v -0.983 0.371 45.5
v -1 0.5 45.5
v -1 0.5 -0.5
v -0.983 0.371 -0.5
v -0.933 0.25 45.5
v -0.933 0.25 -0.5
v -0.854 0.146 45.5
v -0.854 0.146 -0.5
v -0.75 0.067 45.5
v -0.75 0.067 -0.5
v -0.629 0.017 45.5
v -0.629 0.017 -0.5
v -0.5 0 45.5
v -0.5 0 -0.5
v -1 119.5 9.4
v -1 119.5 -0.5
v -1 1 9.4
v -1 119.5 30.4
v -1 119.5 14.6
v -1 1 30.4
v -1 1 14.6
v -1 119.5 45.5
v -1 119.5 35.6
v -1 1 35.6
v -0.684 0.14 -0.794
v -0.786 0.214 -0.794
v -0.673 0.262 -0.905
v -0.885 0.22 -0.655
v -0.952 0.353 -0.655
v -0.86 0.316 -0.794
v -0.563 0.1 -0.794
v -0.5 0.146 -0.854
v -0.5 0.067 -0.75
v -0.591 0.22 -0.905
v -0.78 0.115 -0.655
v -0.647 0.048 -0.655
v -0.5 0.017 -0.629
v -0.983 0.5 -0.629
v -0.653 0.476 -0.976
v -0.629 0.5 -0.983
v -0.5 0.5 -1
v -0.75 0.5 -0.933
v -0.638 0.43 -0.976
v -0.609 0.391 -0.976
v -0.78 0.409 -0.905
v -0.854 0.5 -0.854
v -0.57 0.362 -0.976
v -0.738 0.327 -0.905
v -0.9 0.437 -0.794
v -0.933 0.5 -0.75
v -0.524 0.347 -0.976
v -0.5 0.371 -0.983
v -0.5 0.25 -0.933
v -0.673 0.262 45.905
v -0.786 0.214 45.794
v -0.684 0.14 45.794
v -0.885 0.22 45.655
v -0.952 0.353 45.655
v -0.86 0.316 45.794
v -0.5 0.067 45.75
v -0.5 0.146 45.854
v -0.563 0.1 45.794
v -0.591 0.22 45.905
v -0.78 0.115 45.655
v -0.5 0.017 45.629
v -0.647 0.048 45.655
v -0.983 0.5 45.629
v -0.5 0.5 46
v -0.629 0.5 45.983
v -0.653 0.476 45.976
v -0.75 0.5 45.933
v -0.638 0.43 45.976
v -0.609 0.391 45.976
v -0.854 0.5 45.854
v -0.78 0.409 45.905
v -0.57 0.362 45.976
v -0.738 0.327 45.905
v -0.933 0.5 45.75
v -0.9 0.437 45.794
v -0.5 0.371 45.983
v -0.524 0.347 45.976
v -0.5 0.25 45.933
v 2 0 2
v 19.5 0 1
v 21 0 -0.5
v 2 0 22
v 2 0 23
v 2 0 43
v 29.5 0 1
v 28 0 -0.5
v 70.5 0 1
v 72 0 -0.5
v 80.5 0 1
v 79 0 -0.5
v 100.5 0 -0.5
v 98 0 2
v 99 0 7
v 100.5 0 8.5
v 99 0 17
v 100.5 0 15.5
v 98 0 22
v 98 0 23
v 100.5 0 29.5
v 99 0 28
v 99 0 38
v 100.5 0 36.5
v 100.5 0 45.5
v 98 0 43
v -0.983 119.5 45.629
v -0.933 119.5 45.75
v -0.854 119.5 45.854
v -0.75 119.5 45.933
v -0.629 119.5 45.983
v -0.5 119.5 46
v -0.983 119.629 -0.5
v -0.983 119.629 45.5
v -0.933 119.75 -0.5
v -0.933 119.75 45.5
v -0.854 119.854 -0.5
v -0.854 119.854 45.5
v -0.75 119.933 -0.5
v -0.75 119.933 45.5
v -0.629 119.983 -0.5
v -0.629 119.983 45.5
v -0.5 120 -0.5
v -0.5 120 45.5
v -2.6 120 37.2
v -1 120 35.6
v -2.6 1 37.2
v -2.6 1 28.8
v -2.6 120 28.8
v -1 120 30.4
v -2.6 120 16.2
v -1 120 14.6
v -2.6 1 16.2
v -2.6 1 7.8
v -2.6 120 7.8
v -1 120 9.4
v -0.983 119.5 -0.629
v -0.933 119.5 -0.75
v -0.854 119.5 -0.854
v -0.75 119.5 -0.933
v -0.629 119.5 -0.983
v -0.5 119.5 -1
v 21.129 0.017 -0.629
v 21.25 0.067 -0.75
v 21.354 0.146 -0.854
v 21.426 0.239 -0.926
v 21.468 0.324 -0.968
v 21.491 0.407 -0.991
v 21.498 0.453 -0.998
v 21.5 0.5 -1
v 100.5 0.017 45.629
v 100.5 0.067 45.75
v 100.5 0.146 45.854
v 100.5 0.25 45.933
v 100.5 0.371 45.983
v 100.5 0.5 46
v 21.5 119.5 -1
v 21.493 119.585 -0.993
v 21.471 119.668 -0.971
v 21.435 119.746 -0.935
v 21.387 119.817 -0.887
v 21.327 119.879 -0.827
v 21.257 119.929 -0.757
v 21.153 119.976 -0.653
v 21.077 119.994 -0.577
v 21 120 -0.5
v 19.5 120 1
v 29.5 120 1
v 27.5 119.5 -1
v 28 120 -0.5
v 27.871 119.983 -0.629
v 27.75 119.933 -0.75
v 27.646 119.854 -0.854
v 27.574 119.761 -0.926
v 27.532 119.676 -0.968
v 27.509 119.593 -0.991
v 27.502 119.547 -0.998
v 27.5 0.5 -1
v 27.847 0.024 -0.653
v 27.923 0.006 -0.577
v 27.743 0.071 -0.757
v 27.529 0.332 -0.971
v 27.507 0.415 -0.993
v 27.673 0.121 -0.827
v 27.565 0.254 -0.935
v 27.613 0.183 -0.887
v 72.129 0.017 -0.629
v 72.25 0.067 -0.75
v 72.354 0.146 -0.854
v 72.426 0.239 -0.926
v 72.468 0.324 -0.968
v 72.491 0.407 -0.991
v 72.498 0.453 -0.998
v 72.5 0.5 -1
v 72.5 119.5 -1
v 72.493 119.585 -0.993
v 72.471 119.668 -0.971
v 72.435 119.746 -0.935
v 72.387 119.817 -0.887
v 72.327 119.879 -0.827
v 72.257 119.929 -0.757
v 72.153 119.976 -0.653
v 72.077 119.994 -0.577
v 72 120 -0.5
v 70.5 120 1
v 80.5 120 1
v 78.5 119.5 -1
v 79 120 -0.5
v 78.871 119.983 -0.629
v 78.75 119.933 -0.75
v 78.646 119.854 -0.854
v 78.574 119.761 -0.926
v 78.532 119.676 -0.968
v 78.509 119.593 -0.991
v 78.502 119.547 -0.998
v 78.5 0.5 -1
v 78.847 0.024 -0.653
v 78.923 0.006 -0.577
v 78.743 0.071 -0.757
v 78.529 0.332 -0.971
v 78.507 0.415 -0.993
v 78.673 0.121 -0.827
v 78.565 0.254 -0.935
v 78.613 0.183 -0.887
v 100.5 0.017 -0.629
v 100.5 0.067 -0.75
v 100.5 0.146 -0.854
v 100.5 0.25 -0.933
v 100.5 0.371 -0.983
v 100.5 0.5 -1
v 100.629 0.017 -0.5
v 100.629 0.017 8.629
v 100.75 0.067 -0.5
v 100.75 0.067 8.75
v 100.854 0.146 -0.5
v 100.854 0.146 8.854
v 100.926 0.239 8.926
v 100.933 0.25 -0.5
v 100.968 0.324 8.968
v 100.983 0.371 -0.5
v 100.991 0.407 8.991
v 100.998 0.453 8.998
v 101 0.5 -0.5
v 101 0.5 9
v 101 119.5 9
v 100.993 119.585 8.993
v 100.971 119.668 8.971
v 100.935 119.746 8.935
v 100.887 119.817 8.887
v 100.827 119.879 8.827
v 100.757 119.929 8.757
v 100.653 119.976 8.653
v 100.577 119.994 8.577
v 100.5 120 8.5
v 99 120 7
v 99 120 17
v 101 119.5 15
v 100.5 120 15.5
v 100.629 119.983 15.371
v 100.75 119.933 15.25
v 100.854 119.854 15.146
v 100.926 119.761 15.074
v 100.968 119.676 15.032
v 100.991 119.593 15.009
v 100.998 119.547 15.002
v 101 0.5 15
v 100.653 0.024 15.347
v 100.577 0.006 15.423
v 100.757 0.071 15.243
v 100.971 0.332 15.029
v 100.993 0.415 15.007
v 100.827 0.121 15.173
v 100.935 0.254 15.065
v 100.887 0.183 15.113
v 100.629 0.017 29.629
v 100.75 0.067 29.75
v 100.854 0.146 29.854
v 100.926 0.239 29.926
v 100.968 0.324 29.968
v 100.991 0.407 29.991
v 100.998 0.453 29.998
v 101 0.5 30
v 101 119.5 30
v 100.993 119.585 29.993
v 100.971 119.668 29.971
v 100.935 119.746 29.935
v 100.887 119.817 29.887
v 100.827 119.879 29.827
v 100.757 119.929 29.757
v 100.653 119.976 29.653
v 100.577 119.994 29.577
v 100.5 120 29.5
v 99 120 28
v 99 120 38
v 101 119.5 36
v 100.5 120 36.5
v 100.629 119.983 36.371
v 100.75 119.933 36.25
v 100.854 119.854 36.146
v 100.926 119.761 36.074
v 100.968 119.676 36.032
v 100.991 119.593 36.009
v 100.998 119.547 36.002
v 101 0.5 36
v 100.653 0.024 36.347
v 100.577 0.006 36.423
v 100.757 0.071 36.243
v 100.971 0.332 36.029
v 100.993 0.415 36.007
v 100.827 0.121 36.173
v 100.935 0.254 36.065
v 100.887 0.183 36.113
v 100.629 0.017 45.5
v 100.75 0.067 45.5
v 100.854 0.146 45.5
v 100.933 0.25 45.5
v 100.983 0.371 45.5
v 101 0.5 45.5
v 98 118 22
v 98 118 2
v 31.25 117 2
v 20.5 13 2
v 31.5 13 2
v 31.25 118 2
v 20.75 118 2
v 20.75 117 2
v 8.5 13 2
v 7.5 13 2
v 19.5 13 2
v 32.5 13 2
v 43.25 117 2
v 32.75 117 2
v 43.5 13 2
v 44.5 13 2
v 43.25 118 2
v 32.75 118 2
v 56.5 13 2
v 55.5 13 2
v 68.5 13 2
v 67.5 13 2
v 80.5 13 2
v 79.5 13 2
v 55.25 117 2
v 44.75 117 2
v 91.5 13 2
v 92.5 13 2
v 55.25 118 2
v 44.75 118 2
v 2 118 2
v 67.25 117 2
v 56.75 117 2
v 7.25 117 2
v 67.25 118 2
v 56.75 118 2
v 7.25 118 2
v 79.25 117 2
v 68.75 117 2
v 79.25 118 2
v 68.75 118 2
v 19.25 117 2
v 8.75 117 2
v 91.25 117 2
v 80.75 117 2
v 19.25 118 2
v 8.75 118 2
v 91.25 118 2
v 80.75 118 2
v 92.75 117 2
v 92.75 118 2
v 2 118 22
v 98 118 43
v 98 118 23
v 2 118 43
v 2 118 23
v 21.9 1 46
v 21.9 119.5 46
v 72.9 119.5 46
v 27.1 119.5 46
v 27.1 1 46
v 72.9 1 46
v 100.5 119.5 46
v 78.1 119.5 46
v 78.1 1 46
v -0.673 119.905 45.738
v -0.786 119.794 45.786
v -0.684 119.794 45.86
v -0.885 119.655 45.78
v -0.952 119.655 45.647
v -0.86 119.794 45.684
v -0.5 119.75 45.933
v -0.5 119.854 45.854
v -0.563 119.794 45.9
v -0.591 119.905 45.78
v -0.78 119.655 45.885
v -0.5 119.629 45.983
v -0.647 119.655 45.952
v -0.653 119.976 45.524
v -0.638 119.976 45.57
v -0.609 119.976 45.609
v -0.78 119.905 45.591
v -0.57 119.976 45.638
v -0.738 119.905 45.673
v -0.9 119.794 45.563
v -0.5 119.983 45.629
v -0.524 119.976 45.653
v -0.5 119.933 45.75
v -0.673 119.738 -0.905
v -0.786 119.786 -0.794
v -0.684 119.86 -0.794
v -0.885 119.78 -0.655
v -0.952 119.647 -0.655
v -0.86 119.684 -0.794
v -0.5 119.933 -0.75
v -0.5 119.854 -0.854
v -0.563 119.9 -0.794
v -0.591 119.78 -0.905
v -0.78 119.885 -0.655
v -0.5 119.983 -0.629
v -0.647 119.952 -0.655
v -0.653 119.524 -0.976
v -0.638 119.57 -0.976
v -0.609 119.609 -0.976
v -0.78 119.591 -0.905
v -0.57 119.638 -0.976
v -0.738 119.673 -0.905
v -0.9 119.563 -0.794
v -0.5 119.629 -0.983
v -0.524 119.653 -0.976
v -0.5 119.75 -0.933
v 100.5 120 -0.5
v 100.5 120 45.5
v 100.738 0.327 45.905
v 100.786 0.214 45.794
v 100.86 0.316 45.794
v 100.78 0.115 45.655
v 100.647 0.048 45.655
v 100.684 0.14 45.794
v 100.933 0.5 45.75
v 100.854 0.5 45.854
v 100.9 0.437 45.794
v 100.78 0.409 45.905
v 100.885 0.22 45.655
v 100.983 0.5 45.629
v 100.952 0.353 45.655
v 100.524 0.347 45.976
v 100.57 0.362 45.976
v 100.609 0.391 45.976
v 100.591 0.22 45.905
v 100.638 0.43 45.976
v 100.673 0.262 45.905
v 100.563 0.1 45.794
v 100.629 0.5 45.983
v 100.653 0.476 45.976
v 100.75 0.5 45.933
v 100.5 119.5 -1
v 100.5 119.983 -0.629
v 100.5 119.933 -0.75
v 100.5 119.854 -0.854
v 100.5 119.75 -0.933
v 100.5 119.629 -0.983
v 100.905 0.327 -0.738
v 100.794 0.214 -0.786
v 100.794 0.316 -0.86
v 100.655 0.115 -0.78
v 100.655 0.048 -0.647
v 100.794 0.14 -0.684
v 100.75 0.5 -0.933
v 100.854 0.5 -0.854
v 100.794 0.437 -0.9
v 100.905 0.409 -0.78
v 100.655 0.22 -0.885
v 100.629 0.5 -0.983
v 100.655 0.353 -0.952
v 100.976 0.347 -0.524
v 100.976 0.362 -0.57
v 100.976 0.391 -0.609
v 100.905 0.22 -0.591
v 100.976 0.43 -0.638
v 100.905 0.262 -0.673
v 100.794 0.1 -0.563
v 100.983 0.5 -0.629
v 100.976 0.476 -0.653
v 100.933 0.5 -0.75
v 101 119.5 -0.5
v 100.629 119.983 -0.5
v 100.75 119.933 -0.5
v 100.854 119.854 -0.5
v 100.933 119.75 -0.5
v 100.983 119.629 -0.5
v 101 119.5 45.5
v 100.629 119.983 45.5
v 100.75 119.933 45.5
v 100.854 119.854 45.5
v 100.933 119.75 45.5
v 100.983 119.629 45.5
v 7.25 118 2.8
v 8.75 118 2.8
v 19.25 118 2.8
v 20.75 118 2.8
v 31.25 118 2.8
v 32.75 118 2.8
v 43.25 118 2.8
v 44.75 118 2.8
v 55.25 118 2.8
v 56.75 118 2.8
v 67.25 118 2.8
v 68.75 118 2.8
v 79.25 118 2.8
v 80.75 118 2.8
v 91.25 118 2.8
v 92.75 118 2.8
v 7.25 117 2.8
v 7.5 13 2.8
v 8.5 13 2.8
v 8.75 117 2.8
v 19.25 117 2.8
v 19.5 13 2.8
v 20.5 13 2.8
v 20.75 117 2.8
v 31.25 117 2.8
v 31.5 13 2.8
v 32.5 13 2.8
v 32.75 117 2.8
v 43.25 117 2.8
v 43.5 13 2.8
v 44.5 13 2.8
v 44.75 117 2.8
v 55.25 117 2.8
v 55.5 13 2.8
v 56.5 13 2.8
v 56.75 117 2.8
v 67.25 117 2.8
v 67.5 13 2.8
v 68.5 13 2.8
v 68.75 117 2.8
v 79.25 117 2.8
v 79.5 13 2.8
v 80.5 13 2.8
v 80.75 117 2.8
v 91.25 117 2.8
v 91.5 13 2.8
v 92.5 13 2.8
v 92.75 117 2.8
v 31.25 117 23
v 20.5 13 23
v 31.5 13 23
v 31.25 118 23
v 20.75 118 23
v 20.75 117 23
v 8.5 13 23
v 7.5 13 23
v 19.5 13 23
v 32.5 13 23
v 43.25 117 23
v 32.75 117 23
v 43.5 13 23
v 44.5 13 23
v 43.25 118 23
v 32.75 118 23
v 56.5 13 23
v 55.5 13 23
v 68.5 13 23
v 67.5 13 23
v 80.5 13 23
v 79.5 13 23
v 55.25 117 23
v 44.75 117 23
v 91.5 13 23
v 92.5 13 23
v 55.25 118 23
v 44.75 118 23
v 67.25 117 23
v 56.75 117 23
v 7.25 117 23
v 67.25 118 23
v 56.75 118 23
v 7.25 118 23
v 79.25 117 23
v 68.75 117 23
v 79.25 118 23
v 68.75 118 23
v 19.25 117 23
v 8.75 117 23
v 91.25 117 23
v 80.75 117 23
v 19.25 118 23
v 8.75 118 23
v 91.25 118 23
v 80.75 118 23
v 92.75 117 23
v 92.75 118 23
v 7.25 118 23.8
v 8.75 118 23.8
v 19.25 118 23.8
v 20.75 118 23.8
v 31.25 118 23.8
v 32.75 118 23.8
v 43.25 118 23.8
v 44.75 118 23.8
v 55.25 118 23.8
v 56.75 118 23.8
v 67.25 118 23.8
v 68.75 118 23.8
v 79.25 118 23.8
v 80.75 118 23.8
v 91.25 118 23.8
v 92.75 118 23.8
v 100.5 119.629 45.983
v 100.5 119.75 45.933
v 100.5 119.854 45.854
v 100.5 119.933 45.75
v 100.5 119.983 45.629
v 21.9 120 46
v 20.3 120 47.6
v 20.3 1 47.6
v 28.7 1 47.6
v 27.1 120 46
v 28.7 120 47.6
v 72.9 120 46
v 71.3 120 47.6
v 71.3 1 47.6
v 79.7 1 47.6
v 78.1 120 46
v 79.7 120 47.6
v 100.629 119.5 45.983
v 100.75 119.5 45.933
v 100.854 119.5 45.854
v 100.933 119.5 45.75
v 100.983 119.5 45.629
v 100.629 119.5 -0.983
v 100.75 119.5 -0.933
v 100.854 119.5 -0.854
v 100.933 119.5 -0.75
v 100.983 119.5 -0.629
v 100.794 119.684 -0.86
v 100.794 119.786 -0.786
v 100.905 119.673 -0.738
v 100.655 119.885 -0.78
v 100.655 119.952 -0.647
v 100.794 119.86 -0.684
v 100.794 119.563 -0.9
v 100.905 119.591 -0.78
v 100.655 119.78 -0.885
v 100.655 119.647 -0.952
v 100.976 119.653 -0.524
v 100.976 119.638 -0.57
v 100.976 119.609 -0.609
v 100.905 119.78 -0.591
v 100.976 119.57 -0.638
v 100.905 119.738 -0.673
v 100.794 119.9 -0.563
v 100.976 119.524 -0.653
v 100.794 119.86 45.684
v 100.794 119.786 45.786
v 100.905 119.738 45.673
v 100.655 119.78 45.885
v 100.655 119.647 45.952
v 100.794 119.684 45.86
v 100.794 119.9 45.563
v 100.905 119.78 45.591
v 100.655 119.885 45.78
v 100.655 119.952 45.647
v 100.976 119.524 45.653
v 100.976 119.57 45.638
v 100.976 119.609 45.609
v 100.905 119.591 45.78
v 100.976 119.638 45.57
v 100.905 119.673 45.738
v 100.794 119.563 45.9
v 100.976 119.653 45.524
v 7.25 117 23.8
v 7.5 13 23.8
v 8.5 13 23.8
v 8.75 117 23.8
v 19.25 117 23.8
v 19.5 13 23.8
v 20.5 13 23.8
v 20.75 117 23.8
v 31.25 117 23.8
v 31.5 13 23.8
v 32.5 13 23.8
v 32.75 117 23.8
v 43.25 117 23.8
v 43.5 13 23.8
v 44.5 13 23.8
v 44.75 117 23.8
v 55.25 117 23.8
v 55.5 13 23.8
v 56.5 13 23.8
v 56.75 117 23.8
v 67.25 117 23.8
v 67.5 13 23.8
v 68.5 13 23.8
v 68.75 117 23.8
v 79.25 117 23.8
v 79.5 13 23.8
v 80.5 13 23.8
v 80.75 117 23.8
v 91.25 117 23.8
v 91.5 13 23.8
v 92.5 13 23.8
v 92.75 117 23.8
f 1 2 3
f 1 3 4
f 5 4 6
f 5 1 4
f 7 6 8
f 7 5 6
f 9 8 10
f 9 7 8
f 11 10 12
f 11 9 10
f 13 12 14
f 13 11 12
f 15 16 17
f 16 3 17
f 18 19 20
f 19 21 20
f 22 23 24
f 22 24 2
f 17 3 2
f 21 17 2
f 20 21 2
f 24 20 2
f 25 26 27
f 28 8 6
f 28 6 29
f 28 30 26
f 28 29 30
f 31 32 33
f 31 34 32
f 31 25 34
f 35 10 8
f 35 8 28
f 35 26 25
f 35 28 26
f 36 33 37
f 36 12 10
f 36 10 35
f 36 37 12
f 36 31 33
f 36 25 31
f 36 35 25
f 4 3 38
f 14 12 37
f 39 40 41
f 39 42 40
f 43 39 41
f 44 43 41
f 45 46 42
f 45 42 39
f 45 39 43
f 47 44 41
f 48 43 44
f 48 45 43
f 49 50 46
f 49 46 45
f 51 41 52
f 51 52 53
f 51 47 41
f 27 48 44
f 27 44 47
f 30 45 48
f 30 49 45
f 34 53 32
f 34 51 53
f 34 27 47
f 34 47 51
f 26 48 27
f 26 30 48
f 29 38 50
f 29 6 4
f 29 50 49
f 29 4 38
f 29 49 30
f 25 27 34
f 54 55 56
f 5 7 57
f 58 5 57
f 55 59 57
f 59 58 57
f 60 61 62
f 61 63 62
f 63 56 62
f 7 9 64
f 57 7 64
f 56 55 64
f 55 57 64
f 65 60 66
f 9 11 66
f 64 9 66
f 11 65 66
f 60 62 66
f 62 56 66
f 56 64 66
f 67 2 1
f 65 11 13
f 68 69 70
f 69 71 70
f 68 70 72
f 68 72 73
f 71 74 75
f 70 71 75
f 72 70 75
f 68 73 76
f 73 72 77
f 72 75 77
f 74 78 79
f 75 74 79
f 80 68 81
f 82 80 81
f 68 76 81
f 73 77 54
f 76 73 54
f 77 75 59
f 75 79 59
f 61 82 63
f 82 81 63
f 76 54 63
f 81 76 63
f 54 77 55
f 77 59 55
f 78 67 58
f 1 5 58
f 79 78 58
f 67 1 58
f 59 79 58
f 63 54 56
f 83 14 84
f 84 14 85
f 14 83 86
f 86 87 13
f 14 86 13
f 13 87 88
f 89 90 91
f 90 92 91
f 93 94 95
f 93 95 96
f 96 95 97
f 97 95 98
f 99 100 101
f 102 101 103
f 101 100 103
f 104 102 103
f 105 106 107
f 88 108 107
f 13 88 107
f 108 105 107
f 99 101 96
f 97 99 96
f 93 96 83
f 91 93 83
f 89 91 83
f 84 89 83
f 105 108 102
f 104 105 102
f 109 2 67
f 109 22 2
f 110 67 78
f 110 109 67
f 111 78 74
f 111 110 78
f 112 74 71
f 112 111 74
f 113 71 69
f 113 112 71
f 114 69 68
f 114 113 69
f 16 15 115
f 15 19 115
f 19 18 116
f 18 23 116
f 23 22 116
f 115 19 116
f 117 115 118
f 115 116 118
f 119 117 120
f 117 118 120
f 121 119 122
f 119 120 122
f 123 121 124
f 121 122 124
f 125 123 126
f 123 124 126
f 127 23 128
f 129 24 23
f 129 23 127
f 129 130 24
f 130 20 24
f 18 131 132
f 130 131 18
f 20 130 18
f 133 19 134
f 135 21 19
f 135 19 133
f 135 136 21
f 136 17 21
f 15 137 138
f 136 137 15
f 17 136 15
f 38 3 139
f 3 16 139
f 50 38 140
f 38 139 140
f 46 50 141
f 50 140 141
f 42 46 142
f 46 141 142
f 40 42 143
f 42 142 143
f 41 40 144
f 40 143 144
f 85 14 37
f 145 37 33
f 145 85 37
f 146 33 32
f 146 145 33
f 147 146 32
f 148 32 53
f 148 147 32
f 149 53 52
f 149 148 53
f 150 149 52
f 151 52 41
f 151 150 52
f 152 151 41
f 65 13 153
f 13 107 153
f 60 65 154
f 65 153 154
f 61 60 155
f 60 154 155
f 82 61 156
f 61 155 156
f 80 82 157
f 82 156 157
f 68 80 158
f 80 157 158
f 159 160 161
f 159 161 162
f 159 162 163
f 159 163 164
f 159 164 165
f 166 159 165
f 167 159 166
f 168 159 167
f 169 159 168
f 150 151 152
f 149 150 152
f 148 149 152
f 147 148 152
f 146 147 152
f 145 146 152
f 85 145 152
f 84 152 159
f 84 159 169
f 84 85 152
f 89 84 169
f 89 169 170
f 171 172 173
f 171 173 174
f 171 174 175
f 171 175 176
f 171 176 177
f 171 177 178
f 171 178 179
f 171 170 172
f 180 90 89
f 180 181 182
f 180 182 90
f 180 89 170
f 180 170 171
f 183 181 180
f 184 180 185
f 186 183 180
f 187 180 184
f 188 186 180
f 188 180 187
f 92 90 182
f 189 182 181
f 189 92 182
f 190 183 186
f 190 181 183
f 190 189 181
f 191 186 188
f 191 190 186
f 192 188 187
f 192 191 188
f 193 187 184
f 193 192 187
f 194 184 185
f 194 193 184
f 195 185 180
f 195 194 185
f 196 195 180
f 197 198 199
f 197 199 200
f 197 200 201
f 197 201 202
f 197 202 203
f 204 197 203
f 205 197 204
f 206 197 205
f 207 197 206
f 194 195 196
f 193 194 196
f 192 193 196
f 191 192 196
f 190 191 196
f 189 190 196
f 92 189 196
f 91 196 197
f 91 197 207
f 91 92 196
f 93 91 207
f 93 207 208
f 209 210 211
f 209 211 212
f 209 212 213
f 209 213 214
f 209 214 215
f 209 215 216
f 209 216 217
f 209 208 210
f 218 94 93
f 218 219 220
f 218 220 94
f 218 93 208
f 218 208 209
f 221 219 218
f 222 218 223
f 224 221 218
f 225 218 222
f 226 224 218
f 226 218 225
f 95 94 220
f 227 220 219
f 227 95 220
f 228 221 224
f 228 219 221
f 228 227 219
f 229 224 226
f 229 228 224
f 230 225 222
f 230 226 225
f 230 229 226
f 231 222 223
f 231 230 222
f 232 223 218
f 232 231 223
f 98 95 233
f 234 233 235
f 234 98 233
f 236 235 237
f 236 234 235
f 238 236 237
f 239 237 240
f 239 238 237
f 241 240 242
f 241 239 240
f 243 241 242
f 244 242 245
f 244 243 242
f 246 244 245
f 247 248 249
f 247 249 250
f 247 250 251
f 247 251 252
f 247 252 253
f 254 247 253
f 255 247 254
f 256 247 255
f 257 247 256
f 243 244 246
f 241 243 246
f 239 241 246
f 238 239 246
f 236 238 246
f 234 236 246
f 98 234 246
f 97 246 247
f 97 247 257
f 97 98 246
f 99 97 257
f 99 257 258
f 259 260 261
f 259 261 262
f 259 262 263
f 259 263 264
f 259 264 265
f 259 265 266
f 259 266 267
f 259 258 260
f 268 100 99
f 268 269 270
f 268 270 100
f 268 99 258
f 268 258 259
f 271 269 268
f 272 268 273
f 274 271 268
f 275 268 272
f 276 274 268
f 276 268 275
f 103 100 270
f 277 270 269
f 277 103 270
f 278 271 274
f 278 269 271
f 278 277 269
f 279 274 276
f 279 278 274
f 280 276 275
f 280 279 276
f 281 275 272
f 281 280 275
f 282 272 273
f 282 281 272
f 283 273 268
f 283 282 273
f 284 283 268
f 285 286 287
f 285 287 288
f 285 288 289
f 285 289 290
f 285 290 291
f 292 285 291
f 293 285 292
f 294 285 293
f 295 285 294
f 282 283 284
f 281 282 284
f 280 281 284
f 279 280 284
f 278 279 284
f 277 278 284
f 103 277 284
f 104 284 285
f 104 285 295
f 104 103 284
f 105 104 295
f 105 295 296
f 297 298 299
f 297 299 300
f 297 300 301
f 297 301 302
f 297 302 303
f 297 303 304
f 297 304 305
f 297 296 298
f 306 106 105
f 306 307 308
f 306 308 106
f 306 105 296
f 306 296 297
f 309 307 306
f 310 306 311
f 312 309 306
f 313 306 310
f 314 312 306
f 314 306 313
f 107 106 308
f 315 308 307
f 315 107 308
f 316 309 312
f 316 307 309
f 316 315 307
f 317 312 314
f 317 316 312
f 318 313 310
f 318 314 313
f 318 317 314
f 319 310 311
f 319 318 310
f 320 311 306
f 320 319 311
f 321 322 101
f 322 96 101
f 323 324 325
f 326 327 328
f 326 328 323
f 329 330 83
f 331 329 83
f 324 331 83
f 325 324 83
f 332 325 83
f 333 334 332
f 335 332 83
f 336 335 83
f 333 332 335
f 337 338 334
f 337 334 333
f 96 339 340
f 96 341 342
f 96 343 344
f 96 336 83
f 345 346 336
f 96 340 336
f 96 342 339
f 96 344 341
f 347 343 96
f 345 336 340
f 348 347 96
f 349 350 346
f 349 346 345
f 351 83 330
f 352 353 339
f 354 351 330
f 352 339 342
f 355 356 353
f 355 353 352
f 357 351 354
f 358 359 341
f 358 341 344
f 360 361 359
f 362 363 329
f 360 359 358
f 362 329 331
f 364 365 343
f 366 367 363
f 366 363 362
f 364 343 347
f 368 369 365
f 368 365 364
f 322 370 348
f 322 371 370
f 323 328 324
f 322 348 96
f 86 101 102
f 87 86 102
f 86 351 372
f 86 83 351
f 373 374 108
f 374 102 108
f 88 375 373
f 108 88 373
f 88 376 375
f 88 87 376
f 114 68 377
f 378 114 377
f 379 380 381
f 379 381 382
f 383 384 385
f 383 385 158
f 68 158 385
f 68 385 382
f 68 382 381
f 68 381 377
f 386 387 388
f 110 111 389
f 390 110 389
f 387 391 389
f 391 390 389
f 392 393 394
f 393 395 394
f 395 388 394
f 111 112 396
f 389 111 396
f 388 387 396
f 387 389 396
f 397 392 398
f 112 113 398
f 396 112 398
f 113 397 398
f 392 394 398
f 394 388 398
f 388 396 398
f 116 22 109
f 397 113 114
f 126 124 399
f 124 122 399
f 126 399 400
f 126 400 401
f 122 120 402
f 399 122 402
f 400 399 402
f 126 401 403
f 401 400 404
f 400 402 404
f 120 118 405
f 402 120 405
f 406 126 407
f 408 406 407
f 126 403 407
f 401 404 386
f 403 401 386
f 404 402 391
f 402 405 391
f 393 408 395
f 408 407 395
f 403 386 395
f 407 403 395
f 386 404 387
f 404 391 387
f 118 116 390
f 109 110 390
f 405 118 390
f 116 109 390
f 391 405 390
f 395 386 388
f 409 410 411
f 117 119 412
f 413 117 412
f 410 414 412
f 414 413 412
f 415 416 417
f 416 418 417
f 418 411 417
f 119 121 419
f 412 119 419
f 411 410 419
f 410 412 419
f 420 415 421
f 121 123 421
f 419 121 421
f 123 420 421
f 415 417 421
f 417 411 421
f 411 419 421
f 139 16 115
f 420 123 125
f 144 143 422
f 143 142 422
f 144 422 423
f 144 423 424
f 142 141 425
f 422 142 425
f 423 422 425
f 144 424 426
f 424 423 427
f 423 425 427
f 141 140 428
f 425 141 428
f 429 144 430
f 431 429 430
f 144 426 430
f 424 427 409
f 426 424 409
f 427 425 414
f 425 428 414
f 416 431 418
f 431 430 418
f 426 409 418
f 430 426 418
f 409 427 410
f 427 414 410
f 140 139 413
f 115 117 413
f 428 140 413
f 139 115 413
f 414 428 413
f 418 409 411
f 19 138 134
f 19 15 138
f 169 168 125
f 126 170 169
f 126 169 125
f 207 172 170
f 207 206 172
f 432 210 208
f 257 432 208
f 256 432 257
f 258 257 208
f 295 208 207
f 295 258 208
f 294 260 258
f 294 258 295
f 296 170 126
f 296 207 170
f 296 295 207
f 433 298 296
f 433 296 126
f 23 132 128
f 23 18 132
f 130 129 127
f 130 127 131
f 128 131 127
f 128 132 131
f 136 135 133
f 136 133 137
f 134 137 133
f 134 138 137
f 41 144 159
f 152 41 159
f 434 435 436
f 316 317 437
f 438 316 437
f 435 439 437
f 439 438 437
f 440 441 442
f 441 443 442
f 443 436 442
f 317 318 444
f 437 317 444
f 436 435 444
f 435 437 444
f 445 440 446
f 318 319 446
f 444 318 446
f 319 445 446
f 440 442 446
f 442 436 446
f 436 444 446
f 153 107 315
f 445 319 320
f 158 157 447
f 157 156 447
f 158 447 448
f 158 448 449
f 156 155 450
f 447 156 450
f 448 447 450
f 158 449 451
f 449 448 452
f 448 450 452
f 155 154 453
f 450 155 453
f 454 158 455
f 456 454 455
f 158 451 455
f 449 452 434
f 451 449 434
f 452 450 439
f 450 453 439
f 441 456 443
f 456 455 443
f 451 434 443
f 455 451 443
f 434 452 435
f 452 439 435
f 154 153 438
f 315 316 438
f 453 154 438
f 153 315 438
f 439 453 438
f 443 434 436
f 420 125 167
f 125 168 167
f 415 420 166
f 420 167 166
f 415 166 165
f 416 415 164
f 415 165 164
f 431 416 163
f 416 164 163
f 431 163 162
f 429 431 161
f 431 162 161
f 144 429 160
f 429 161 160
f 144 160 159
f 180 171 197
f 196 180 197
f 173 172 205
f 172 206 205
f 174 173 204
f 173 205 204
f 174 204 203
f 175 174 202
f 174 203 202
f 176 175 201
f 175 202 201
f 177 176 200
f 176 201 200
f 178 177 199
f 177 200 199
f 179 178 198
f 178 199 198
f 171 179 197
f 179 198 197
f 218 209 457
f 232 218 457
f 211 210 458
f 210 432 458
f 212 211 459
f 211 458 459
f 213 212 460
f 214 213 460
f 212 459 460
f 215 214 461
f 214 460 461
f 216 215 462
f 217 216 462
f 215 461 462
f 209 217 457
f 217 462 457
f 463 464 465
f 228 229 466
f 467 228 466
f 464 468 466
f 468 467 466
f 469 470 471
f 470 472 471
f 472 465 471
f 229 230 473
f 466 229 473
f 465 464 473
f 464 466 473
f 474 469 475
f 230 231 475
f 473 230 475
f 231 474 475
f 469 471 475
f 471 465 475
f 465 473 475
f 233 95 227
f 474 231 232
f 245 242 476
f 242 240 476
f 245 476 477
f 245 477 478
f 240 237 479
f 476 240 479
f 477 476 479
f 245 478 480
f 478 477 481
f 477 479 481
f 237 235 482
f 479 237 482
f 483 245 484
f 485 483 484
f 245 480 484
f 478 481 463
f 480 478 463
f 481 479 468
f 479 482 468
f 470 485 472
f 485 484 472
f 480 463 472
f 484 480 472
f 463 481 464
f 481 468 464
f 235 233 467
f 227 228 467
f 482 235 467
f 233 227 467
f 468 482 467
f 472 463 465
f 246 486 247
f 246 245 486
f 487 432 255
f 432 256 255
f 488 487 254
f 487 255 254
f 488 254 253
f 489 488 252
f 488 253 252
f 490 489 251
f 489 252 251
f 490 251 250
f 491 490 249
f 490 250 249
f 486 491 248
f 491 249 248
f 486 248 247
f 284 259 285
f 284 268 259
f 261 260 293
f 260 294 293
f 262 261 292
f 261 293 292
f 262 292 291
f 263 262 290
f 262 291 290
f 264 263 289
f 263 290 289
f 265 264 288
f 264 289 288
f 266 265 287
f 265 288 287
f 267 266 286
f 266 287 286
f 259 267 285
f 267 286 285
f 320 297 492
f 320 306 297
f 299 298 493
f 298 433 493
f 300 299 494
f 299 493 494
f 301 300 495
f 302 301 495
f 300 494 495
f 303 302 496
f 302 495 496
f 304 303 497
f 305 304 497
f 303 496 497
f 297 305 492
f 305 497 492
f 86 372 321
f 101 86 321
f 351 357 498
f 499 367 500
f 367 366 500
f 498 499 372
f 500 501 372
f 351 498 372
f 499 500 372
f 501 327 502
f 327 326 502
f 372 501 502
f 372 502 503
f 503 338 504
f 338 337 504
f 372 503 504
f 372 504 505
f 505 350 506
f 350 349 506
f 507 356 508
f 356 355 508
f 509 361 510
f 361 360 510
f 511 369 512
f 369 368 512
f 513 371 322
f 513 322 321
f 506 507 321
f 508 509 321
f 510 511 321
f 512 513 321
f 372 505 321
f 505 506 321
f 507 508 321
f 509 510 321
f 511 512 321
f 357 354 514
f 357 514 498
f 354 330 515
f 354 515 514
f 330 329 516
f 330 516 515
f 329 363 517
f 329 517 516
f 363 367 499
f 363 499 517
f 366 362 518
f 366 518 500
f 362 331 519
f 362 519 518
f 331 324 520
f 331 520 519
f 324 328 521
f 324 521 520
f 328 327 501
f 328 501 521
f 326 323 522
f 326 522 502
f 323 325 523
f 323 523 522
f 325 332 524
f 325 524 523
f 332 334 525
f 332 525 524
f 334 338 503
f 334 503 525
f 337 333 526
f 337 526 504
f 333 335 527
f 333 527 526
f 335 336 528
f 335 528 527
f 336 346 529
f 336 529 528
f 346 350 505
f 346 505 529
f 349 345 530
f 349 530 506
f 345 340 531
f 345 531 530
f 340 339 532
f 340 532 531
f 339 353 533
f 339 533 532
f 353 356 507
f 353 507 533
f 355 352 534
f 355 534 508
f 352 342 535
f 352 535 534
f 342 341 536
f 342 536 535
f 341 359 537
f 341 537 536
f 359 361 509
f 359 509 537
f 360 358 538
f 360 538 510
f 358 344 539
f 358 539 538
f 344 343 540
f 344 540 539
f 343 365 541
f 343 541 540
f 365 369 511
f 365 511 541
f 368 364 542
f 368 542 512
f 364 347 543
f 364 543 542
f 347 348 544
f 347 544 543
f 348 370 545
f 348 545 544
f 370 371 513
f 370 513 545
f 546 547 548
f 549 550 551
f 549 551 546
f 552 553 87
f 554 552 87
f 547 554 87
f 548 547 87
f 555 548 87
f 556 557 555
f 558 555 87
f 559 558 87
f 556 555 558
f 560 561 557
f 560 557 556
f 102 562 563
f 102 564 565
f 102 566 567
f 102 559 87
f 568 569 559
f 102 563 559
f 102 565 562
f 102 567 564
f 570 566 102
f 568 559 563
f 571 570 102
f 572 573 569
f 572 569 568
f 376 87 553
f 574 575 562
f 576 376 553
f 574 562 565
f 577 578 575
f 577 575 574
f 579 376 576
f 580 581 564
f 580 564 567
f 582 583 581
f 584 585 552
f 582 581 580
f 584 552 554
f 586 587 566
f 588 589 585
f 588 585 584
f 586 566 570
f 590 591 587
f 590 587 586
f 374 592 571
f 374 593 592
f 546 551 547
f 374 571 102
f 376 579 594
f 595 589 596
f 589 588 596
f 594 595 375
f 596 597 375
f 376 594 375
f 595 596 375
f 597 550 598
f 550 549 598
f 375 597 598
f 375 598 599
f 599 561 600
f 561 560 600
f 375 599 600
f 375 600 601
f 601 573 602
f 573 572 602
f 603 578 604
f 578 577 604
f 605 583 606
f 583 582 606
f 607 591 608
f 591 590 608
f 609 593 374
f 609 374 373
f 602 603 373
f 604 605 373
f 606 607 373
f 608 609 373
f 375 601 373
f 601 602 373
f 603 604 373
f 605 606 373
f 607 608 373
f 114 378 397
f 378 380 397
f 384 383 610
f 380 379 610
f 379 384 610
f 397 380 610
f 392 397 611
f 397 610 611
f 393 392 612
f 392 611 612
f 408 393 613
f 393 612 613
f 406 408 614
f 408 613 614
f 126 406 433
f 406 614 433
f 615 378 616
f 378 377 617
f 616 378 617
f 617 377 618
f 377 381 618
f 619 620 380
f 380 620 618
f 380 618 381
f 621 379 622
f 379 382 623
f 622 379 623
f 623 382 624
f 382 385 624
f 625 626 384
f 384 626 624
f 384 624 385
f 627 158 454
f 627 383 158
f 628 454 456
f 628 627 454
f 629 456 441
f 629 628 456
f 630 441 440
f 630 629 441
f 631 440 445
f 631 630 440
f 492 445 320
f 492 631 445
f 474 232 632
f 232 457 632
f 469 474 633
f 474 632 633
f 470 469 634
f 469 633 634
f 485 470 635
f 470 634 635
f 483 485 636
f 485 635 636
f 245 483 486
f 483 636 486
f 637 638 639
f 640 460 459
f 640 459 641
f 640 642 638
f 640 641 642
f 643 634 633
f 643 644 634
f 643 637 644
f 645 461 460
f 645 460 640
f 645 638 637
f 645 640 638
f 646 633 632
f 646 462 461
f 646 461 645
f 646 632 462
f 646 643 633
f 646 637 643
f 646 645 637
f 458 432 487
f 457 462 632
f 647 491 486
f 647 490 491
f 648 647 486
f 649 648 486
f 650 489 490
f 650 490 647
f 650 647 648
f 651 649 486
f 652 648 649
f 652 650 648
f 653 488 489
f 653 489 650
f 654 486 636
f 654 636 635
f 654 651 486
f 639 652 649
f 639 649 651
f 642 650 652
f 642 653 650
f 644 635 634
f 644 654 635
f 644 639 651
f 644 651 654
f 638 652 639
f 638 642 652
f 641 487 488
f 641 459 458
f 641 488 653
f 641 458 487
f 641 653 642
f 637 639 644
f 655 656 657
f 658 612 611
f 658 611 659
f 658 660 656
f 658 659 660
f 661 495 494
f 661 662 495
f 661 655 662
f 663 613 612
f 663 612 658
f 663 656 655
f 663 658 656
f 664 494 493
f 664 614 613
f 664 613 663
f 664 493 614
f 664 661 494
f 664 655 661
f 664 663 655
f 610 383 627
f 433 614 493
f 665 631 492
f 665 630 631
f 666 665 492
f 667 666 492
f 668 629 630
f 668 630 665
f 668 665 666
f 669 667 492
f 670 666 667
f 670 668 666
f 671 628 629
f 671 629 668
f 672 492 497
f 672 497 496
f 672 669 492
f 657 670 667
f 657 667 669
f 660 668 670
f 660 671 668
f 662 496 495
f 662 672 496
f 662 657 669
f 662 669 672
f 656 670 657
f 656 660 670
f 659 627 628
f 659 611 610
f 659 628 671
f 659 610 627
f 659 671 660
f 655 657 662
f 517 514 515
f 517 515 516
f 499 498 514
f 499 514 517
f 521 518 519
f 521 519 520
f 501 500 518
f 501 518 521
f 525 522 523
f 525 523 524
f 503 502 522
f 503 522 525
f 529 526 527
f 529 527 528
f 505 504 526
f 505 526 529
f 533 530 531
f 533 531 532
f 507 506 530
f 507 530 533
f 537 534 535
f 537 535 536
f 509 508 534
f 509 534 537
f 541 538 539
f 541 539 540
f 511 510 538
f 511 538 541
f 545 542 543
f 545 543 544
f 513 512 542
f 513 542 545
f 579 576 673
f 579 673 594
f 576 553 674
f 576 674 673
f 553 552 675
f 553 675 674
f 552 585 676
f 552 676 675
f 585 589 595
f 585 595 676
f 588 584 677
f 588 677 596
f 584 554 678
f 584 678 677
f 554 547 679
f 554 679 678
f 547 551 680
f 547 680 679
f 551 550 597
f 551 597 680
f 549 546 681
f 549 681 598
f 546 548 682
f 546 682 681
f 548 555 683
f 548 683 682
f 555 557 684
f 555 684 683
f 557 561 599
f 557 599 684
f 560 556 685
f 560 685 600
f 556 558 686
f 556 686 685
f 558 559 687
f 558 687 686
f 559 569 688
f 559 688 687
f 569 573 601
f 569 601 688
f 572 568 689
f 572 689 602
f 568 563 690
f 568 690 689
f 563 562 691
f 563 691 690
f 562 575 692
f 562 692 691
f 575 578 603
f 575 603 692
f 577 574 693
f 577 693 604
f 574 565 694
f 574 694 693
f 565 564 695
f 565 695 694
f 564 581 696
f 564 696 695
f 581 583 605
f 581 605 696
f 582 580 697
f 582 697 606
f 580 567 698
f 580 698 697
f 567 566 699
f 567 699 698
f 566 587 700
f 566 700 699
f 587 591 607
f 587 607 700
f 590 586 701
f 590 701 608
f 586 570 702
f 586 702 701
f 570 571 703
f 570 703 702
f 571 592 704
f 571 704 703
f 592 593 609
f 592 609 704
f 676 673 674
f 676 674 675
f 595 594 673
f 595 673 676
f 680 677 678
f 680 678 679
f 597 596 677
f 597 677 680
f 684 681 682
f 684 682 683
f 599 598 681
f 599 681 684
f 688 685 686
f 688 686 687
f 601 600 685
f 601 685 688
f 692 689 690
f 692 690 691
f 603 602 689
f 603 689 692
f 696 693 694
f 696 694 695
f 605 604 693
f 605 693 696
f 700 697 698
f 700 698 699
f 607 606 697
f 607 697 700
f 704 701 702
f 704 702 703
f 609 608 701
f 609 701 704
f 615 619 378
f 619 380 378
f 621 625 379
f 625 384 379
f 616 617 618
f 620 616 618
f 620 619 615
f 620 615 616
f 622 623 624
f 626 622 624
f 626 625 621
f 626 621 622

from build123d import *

# Parameters (mm, degrees)
EXTRUDE004_DEPTH                     = 120
EXTRUDE004_ONTO_SKETCH004_ROLL_ANGLE = 90
ARRAY005_X_COUNT                     = 2
ARRAY005_X_PITCH                     = 51
EXTRUDE001_DEPTH                     = 120
EXTRUDE001_ONTO_SKETCH001_ROLL_ANGLE = 90
ARRAY003_Z_COUNT                     = 2
ARRAY003_Z_PITCH                     = 21
EXTRUDE003_DEPTH                     = 119
EXTRUDE003_ONTO_SKETCH003_ROLL_ANGLE = 90
ARRAY_X_COUNT                        = 2
ARRAY_X_PITCH                        = 51
EXTRUDE002_DEPTH                     = 119
EXTRUDE002_ONTO_SKETCH002_ROLL_ANGLE = 90
ARRAY004_Z_COUNT                     = 2
ARRAY004_Z_PITCH                     = 21
BOX002_W                             = 96
BOX002_H                             = 118
BOX002_DEPTH                         = 1
BOX001_W                             = 96
BOX001_H                             = 118
BOX001_DEPTH                         = 41
BOX_W                                = 102
BOX_H                                = 120
BOX_DEPTH                            = 47
EXTRUDE_DEPTH                        = 0.8
ARRAY002_X_COUNT                     = 8
ARRAY002_X_PITCH                     = 12
ARRAY002_Z_COUNT                     = 2
ARRAY002_Z_PITCH                     = 21
FILLET_R                             = 0.5


with BuildPart() as bottomsideguidearray:
    # Sketch004 as drawn → Extrude004 (new)
    with BuildSketch(Plane.XY):
        Polygon((-6, 1), (4, 1), (2, -1), (-4, -1), align=None)
    extrude(amount=-EXTRUDE004_DEPTH)


with BuildPart() as bottomsideguidearray_1:
    # Extrude004 onto Sketch004 roll: moved
    add(bottomsideguidearray.part.rotate(Axis((0, 0, 0), (1, 0, 0)), EXTRUDE004_ONTO_SKETCH004_ROLL_ANGLE))


with BuildPart() as bottomsideguidearray_2:
    # Extrude004 onto Sketch004 placement: moved
    add(bottomsideguidearray_1.part)


with BuildPart() as bottomsideguidearray_3:
    # Extrude004 placement: moved
    add(bottomsideguidearray_2.part.moved(Location((25.5, 0, 0))))

    # Array005 X: BottomSideGuideArray ×2


with BuildPart() as bottomsideguidearray_4:
    add(bottomsideguidearray_3.part)
    with Locations(*[(i * ARRAY005_X_PITCH, 0, 0) for i in range(1, ARRAY005_X_COUNT)]):
        add(bottomsideguidearray_3.part)


with BuildPart() as guidegaps:
    # Sketch001 as drawn → Extrude001 (new)
    with BuildSketch(Plane.XY):
        Polygon((0, 0), (0, 10), (2, 8), (2, 2), align=None)
    extrude(amount=-EXTRUDE001_DEPTH)


with BuildPart() as guidegaps_1:
    # Extrude001 onto Sketch001 roll: moved
    add(guidegaps.part.rotate(Axis((0, 0, 0), (1, 0, 0)), EXTRUDE001_ONTO_SKETCH001_ROLL_ANGLE))


with BuildPart() as guidegaps_2:
    # Extrude001 onto Sketch001 placement: moved
    add(guidegaps_1.part.moved(Location((99, 0, 7))))

    # Array003 Z: GuideGaps ×2


with BuildPart() as guidegaps_3:
    add(guidegaps_2.part)
    with Locations(*[(0, 0, i * ARRAY003_Z_PITCH) for i in range(1, ARRAY003_Z_COUNT)]):
        add(guidegaps_2.part)

    # Fusion003: union BottomSideGuideArray
    add(bottomsideguidearray_4.part)


with BuildPart() as topsideguidearray:
    # Sketch003 as drawn → Extrude003 (new)
    with BuildSketch(Plane.XY):
        Polygon((-5.2, 47.6), (3.2, 47.6), (1.6, 46), (-3.6, 46), align=None)
    extrude(amount=-EXTRUDE003_DEPTH)


with BuildPart() as topsideguidearray_1:
    # Extrude003 onto Sketch003 roll: moved
    add(topsideguidearray.part.rotate(Axis((0, 0, 0), (1, 0, 0)), EXTRUDE003_ONTO_SKETCH003_ROLL_ANGLE))


with BuildPart() as topsideguidearray_2:
    # Extrude003 onto Sketch003 placement: moved
    add(topsideguidearray_1.part)


with BuildPart() as topsideguidearray_3:
    # Extrude003 placement: moved
    add(topsideguidearray_2.part.moved(Location((25.5, 1, 0))))

    # Array X: TopSideGuideArray ×2


with BuildPart() as topsideguidearray_4:
    add(topsideguidearray_3.part)
    with Locations(*[(i * ARRAY_X_PITCH, 0, 0) for i in range(1, ARRAY_X_COUNT)]):
        add(topsideguidearray_3.part)


with BuildPart() as guiderods:
    # Sketch002 as drawn → Extrude002 (new)
    with BuildSketch(Plane.XY):
        Polygon((0.4, 9.2), (0.4, 0.8), (2, 2.4), (2, 7.6), align=None)
    extrude(amount=-EXTRUDE002_DEPTH)


with BuildPart() as guiderods_1:
    # Extrude002 onto Sketch002 roll: moved
    add(guiderods.part.rotate(Axis((0, 0, 0), (1, 0, 0)), EXTRUDE002_ONTO_SKETCH002_ROLL_ANGLE))


with BuildPart() as guiderods_2:
    # Extrude002 onto Sketch002 placement: moved
    add(guiderods_1.part.moved(Location((-1, 0, 7))))


with BuildPart() as guiderods_3:
    # Extrude002 placement: moved
    add(guiderods_2.part.moved(Location((-2, 1, 0))))

    # Array004 Z: GuideRods ×2


with BuildPart() as guiderods_4:
    add(guiderods_3.part)
    with Locations(*[(0, 0, i * ARRAY004_Z_PITCH) for i in range(1, ARRAY004_Z_COUNT)]):
        add(guiderods_3.part)

    # Fusion002: union TopSideGuideArray
    add(topsideguidearray_4.part)


with BuildPart() as separator:
    # Box002 → Box002 (new body)
    with BuildSketch(Plane(origin=(2, 0, 22), x_dir=(1, 0, 0), z_dir=(0, 0, 1))):
        with Locations((48, 59)):
            Rectangle(BOX002_W, BOX002_H)
    extrude(amount=BOX002_DEPTH)


with BuildPart() as inner_box:
    # Box001 → Box001 (new body)
    with BuildSketch(Plane(origin=(2, 0, 2), x_dir=(1, 0, 0), z_dir=(0, 0, 1))):
        with Locations((48, 59)):
            Rectangle(BOX001_W, BOX001_H)
    extrude(amount=BOX001_DEPTH)


with BuildPart() as cabinet_base:
    # Box → Box (new body)
    with BuildSketch(Plane(origin=(-1, 0, -1), x_dir=(1, 0, 0), z_dir=(0, 0, 1))):
        with Locations((51, 60)):
            Rectangle(BOX_W, BOX_H)
    extrude(amount=BOX_DEPTH)

    # Cut: cut Inner Box
    add(inner_box.part, mode=Mode.SUBTRACT)

    # Fusion: union Separator
    add(separator.part)


with BuildPart() as final_cabinet:
    # Sketch → Extrude (new body)
    with BuildSketch(Plane.XY):
        Polygon((0.5, 0), (0.25, 104), (0.25, 105), (1.75, 105), (1.75, 104), (1.5, 0), align=None)
    extrude(amount=EXTRUDE_DEPTH)

    # Array002 X: Final Cabinet ×8


with BuildPart() as final_cabinet_1:
    add(final_cabinet.part)
    with Locations(*[(i * ARRAY002_X_PITCH, 0, 0) for i in range(1, ARRAY002_X_COUNT)]):
        add(final_cabinet.part)

    # Array002 Z: Final Cabinet ×2


with BuildPart() as final_cabinet_2:
    add(final_cabinet_1.part)
    with Locations(*[(0, 0, i * ARRAY002_Z_PITCH) for i in range(1, ARRAY002_Z_COUNT)]):
        add(final_cabinet_1.part)


with BuildPart() as final_cabinet_3:
    # Array002 placement: moved
    add(final_cabinet_2.part.moved(Location((7, 13, 2))))

    # Fusion001: union Cabinet Base
    add(cabinet_base.part)

    # Fillet
    fillet_edges = [final_cabinet_3.edges().sort_by_distance(p)[0] for p in [
        (-1, 0, 22.5),
        (-1, 60, 46),
        (-1, 120, 22.5),
        (-1, 60, -1),
        (50, 0, -1),
        (101, 0, 22.5),
        (50, 0, 46),
        (50, 120, 46),
        (101, 60, 46),
        (50, 120, -1),
        (101, 120, 22.5),
        (101, 60, -1),
    ]]
    fillet(fillet_edges, radius=FILLET_R)

    # Fusion004: union GuideRods
    add(guiderods_4.part)

    # Cut001: cut GuideGaps
    add(guidegaps_3.part, mode=Mode.SUBTRACT)


solid = final_cabinet_3.part
